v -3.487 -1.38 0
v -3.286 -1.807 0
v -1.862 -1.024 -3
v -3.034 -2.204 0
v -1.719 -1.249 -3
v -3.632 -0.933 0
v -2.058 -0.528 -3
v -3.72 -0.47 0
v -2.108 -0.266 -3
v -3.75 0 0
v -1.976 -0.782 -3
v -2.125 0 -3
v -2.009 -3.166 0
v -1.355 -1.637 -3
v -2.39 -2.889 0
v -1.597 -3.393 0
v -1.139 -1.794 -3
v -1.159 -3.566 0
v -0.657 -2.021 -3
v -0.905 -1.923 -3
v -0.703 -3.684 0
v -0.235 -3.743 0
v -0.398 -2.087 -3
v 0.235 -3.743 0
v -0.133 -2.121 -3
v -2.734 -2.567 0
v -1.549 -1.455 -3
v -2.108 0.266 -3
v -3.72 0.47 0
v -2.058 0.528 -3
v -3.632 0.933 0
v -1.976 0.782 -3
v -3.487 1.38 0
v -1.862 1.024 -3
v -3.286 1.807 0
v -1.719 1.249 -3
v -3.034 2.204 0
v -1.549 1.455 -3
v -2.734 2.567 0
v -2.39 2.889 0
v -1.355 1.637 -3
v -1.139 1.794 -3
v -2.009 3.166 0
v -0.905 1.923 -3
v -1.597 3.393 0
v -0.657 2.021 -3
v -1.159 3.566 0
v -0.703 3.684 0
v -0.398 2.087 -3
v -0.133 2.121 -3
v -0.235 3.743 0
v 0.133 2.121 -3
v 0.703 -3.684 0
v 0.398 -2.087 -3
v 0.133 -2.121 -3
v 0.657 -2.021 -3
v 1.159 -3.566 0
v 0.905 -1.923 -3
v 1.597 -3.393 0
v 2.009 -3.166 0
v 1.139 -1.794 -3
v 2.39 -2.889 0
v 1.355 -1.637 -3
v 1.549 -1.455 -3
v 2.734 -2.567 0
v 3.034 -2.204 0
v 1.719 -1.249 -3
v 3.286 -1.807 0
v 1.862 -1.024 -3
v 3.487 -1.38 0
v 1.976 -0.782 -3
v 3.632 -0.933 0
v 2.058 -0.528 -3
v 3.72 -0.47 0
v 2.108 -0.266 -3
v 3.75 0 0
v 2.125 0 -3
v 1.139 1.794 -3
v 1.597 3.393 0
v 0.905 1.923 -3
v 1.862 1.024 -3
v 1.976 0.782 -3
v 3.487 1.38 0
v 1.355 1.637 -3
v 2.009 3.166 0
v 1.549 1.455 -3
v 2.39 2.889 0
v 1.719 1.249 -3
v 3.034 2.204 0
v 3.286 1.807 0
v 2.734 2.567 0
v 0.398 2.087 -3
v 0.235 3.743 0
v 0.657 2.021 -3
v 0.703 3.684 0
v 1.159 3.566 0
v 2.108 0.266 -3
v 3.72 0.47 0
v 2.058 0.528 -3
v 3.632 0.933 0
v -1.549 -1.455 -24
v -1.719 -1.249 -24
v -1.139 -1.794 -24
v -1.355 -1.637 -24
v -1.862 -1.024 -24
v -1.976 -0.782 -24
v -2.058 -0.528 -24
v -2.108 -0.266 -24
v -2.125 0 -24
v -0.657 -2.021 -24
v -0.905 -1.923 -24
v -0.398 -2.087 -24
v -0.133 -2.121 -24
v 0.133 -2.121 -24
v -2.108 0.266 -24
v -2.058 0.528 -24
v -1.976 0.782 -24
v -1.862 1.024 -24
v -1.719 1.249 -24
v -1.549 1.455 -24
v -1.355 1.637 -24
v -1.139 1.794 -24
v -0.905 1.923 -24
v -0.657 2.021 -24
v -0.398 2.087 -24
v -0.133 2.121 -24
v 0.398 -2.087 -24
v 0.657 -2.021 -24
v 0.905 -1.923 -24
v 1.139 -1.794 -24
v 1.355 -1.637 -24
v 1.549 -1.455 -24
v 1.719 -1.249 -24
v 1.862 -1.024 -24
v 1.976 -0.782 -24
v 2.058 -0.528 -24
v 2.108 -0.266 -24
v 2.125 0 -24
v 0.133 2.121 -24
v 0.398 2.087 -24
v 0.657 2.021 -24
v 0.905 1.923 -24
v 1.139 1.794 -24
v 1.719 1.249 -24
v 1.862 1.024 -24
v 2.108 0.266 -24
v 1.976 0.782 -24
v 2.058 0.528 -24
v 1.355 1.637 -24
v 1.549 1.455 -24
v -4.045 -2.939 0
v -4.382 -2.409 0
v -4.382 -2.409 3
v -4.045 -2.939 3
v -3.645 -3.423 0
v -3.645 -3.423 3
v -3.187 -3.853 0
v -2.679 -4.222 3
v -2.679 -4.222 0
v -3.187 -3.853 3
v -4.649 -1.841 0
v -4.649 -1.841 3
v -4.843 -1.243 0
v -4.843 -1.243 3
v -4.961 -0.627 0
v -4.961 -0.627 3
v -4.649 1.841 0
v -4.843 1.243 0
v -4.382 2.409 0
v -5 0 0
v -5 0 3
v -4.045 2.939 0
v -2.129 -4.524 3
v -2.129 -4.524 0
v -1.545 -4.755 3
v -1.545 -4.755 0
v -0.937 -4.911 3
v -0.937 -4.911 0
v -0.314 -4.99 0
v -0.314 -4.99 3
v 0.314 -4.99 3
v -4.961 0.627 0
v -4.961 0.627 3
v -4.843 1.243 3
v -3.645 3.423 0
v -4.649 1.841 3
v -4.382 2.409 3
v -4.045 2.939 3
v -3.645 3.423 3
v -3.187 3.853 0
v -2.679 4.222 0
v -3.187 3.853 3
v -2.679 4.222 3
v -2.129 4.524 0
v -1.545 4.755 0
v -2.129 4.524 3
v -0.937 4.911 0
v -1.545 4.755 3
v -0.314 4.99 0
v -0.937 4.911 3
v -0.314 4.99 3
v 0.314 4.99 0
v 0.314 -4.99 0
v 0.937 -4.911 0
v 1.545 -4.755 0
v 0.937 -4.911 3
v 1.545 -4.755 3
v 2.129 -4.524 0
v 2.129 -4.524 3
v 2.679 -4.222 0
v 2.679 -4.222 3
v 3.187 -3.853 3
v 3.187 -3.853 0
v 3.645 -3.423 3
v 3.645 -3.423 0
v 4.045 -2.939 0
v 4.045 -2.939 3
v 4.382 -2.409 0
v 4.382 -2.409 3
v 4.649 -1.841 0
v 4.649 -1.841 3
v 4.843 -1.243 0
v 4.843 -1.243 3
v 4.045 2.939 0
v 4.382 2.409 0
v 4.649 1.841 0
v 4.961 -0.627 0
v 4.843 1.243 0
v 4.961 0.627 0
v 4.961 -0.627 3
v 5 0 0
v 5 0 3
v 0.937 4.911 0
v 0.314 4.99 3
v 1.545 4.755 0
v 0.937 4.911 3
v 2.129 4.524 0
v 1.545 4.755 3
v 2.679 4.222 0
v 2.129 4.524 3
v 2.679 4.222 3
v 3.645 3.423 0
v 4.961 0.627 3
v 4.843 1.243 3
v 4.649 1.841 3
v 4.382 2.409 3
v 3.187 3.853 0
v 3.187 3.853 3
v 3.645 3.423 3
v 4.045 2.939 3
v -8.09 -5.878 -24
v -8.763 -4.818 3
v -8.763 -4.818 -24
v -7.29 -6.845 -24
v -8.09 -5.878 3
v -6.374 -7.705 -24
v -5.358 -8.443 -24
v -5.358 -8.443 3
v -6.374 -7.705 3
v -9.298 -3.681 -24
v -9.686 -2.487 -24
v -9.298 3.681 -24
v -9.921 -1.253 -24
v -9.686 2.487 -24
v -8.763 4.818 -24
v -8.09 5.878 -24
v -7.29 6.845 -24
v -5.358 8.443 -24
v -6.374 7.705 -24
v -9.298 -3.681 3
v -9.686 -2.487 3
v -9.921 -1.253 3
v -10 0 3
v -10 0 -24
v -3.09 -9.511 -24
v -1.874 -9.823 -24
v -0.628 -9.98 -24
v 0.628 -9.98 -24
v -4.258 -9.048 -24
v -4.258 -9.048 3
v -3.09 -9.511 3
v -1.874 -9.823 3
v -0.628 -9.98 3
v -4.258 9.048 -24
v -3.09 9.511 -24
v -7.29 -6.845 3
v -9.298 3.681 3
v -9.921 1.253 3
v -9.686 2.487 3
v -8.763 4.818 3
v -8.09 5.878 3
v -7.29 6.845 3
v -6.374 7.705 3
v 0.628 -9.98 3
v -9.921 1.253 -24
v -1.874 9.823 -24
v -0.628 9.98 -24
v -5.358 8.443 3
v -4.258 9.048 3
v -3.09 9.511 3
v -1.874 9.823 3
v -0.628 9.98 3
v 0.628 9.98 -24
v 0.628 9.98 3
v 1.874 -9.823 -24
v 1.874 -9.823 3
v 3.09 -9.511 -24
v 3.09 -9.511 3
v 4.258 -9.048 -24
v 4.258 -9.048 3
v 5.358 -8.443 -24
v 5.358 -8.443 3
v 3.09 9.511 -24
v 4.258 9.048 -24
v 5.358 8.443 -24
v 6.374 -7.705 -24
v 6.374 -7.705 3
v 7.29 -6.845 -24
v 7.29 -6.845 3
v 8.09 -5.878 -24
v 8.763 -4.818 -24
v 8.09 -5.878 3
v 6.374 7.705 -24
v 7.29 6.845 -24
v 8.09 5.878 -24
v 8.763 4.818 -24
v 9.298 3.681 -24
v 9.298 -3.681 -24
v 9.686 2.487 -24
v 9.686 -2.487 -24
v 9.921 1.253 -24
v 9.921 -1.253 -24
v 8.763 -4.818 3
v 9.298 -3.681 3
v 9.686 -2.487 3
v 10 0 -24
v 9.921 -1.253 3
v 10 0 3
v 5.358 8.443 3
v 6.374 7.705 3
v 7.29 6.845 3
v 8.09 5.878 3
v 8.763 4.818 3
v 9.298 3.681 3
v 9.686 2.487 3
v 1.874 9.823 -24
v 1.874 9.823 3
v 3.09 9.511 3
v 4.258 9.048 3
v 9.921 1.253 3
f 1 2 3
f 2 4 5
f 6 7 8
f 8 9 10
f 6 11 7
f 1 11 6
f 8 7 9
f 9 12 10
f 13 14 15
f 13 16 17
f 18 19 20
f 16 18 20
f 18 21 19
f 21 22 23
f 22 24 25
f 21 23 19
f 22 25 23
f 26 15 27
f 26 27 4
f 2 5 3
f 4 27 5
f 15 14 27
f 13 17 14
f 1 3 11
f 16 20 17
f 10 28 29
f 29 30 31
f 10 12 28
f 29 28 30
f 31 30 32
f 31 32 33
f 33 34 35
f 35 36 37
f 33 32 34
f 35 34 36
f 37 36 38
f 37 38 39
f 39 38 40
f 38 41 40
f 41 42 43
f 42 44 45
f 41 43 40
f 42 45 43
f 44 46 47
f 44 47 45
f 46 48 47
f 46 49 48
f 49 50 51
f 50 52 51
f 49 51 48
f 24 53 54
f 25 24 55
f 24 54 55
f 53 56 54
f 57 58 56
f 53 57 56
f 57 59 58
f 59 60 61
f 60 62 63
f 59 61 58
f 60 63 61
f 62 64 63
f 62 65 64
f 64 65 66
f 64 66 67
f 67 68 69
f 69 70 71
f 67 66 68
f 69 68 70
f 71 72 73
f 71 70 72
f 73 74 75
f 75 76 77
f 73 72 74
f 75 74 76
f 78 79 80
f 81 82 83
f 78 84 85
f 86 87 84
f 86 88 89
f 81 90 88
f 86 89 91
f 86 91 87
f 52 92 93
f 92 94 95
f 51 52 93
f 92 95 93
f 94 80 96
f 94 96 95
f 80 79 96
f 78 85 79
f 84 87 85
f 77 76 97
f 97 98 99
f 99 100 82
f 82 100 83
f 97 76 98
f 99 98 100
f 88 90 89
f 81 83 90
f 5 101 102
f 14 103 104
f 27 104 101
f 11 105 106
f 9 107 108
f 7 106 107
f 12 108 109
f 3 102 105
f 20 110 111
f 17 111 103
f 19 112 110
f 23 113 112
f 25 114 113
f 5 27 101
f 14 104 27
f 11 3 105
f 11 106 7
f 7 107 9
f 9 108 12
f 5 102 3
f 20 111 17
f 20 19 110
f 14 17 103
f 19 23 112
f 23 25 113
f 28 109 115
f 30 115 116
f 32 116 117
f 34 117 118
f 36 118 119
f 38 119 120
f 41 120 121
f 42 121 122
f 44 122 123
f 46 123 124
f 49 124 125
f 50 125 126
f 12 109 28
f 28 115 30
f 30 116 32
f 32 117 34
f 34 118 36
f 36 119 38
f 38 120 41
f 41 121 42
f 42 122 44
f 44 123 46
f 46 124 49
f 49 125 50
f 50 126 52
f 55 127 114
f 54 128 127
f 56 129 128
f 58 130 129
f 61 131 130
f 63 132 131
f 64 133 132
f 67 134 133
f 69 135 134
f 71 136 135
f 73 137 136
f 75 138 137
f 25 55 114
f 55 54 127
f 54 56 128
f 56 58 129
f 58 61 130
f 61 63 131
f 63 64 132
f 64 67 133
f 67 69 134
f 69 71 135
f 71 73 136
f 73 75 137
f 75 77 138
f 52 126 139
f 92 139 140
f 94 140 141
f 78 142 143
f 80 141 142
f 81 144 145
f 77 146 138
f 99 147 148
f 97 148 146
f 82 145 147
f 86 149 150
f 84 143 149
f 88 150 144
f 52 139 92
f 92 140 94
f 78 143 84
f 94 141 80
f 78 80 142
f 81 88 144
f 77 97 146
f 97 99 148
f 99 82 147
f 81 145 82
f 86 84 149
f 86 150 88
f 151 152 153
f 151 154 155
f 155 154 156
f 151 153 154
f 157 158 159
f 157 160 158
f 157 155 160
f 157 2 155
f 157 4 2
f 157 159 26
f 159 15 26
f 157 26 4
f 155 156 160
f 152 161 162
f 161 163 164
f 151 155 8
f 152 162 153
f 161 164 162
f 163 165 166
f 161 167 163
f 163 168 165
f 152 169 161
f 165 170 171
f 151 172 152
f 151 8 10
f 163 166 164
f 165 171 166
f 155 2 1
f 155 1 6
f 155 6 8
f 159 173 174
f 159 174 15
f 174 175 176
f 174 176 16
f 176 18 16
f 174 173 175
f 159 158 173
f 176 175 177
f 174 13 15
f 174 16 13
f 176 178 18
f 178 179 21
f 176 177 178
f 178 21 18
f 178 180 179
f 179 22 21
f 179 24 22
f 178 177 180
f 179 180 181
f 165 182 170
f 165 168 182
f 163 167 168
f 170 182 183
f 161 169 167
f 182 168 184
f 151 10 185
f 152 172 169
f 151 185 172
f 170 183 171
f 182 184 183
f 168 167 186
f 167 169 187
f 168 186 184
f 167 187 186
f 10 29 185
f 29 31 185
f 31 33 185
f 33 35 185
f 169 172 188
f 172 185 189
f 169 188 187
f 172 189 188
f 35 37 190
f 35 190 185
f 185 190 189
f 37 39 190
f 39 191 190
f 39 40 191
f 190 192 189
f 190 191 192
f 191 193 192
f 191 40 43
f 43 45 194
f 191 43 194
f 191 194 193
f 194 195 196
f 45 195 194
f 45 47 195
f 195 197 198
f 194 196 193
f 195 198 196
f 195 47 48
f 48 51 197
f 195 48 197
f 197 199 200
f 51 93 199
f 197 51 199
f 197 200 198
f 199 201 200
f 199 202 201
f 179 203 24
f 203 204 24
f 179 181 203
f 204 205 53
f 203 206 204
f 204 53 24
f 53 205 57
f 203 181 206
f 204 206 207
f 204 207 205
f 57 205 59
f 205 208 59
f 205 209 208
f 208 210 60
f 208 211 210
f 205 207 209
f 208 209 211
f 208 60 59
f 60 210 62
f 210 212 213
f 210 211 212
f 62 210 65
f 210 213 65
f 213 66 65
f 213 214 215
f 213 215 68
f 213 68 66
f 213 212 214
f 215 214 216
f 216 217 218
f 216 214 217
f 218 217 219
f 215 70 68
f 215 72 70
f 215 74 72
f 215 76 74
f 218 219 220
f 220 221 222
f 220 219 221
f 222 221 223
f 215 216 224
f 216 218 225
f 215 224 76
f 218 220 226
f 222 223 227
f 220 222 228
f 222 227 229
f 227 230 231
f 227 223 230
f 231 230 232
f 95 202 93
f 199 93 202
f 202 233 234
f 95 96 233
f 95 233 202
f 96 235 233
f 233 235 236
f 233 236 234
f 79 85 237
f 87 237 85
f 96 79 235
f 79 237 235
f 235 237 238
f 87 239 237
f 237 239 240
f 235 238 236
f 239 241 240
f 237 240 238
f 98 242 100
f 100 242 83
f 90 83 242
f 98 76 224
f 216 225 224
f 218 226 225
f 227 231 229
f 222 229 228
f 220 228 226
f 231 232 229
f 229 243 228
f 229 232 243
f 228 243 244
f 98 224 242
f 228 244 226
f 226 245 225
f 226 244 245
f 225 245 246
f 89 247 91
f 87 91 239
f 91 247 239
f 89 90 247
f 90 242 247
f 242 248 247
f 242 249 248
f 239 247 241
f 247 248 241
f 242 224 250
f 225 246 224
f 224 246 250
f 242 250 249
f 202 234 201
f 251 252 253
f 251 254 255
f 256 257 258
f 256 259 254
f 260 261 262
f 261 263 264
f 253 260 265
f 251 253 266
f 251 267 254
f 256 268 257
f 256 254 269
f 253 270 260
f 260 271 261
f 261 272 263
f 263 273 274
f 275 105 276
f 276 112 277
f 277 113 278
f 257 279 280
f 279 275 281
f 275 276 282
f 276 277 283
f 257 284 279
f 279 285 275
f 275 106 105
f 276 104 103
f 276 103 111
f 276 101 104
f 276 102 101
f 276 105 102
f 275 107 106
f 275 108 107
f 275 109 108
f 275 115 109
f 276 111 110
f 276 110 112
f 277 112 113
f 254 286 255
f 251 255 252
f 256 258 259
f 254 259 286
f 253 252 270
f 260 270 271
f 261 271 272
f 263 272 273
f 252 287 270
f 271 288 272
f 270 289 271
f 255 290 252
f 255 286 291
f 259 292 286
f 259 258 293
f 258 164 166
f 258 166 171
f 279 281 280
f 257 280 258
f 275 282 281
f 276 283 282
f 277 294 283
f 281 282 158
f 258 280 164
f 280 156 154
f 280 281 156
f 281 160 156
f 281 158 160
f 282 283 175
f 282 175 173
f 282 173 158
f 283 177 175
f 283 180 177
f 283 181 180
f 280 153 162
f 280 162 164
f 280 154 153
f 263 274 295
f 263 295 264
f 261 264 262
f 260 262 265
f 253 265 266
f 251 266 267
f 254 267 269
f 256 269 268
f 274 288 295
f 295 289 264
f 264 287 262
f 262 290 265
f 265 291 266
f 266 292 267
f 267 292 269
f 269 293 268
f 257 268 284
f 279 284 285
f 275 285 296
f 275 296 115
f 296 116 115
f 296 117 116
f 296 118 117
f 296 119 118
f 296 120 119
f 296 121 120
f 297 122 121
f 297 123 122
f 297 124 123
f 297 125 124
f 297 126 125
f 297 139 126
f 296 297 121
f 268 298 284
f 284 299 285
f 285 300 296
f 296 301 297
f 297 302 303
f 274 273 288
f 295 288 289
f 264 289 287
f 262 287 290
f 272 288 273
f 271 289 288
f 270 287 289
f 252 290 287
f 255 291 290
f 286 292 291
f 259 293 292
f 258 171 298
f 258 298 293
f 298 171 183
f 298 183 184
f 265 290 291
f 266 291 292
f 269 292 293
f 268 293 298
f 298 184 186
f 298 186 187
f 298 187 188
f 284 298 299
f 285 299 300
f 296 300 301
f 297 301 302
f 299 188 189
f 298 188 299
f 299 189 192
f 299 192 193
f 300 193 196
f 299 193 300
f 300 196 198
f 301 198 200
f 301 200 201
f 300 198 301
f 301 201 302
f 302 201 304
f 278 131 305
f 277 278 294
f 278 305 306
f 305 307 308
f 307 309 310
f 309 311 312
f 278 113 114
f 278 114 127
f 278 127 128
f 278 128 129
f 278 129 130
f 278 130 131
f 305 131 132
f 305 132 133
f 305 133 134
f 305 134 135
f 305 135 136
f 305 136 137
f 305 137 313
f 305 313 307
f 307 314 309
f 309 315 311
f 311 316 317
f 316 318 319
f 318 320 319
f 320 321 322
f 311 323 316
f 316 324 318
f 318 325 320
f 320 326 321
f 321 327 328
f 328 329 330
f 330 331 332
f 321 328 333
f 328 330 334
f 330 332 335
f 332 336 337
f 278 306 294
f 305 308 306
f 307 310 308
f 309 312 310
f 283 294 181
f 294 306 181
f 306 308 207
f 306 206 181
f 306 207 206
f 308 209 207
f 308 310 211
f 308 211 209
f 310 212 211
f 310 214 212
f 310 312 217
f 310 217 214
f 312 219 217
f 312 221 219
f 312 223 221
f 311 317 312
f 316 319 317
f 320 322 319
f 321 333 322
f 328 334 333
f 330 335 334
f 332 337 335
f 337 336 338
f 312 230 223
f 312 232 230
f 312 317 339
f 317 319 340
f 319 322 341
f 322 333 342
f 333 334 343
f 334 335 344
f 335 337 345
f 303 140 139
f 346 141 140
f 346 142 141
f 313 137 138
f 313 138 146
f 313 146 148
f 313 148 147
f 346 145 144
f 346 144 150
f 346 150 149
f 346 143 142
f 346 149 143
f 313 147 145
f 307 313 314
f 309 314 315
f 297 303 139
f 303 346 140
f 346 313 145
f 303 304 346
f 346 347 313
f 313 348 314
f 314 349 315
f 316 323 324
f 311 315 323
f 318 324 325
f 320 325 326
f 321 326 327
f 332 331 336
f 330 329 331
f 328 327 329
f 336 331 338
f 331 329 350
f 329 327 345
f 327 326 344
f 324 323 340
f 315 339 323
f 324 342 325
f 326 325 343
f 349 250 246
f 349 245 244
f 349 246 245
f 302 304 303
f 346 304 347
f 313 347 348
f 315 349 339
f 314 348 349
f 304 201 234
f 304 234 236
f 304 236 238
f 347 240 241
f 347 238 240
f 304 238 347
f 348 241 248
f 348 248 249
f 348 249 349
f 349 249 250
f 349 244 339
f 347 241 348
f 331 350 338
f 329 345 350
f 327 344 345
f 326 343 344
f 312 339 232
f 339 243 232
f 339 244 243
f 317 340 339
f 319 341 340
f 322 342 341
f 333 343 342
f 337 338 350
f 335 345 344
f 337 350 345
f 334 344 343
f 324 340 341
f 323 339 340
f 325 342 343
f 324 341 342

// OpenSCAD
$fn = 50;

difference() {
	union() {
		translate(v = [0, 0, -24.0]) {
			cylinder(h = 27, r = 10.0);
		}
	}
	union() {
		translate(v = [0, 0, 0]) {
			rotate(a = [0, 0, 0]) {
				difference() {
					union() {
						translate(v = [0, 0, -27.0]) {
							cylinder(h = 27, r = 2.0);
						}
						translate(v = [0, 0, -3]) {
							cylinder(h = 3, r1 = 2.125, r2 = 3.75);
						}
						translate(v = [0, 0, -27.0]) {
							cylinder(h = 27, r = 2.125);
						}
						translate(v = [0, 0, -27.0]) {
							cylinder(h = 27, r = 2.0);
						}
					}
					union();
				}
			}
		}
		#cylinder(h = 3, r = 5.0);
	}
}
